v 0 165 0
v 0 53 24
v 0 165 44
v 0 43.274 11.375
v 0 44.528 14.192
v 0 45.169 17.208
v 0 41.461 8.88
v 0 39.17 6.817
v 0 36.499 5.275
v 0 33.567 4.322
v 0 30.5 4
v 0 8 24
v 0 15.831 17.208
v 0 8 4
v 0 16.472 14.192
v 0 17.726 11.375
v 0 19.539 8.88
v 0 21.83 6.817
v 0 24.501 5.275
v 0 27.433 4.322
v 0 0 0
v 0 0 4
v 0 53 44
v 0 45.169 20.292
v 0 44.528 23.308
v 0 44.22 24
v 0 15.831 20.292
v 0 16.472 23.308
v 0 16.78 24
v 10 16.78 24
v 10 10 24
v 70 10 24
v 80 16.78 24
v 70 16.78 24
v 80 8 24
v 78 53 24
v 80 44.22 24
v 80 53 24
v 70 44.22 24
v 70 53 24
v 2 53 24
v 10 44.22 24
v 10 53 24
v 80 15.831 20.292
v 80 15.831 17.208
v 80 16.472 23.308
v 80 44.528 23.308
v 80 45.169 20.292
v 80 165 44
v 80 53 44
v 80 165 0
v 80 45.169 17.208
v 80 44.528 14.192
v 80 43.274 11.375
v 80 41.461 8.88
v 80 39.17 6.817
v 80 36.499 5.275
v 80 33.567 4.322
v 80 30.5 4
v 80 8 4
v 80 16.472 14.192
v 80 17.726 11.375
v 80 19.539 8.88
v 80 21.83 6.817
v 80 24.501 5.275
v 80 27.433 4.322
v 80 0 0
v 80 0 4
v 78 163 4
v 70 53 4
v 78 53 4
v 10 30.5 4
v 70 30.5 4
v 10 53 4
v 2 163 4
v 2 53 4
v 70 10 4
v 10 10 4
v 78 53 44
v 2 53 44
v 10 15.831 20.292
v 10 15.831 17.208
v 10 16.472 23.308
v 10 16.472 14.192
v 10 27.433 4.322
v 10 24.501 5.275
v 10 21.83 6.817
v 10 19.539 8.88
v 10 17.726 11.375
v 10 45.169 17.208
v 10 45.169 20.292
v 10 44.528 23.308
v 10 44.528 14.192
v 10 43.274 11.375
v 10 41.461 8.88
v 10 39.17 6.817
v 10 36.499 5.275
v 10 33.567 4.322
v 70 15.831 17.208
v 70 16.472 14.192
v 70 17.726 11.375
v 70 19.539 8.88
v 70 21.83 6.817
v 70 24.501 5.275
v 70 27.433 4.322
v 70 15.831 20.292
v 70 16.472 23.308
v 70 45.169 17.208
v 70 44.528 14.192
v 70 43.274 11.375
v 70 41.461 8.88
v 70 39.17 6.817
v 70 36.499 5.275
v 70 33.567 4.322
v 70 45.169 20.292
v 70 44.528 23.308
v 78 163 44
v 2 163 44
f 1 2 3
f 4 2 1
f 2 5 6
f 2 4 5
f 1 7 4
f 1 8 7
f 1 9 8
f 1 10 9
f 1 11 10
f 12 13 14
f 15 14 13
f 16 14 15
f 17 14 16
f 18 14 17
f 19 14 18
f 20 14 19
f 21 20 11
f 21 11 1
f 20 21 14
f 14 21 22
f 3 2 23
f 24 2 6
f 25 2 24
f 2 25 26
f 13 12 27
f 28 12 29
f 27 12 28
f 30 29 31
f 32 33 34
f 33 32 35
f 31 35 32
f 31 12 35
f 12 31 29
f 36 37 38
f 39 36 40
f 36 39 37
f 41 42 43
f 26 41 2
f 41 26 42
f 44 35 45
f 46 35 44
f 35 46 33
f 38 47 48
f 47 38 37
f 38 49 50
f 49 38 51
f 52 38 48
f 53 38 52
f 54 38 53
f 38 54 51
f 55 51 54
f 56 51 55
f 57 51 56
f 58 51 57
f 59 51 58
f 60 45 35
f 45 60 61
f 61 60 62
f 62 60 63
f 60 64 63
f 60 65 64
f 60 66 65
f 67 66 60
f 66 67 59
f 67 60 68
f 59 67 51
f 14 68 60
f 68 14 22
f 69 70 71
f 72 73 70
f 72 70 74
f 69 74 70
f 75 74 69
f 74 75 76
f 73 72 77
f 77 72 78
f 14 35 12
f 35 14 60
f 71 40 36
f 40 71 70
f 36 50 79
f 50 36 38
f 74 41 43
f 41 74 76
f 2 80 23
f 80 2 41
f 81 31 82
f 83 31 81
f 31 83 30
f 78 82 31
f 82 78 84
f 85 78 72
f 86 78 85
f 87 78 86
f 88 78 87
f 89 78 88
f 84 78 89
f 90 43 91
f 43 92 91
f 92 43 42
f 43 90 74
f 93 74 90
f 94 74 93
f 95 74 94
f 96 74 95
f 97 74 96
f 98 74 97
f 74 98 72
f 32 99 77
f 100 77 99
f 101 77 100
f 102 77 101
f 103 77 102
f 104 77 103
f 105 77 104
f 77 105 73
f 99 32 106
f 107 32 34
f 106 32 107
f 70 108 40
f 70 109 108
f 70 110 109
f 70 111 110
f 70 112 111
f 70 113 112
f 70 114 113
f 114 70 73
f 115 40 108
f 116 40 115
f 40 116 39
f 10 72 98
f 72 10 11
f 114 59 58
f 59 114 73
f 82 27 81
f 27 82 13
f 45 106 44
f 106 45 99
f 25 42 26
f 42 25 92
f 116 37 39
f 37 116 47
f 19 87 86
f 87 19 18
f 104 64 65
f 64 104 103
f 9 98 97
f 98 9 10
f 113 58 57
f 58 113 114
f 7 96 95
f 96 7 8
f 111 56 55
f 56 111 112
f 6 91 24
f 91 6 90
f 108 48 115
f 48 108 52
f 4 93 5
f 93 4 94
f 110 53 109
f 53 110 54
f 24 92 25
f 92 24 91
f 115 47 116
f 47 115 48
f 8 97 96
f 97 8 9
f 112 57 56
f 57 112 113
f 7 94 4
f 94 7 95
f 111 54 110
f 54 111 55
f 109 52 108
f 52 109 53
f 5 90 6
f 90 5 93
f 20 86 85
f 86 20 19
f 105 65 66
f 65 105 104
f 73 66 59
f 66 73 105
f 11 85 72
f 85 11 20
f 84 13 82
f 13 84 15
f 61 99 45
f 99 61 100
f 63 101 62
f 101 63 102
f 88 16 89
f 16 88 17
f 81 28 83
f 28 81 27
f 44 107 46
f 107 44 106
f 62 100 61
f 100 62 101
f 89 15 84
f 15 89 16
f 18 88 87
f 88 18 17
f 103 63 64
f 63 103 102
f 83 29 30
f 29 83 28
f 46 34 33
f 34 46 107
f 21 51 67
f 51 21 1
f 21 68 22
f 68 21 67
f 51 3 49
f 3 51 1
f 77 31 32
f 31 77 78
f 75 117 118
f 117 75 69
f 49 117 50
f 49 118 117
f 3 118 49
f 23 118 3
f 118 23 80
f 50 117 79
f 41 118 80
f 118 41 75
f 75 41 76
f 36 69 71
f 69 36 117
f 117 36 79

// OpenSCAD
cube ([80,165,4]);
translate([0,8,4])
cube ([80,2,20]);
translate([2,53,4])
rotate([0,0,90])
cube ([110,2,40]);
translate([80,53,4])
rotate([0,0,90])
cube ([110,2,40]);

translate([0,163,4])
cube ([80,2,40]);





translate([0,8,4])
difference(){
cube ([80,45,20]);
    
translate ([10,0,0])
cube ([60,45,20]);
    
translate ([0,45/2,29.5/2])
rotate([0,90,0])
cylinder (d=29.5,h=80);
    

    

}
